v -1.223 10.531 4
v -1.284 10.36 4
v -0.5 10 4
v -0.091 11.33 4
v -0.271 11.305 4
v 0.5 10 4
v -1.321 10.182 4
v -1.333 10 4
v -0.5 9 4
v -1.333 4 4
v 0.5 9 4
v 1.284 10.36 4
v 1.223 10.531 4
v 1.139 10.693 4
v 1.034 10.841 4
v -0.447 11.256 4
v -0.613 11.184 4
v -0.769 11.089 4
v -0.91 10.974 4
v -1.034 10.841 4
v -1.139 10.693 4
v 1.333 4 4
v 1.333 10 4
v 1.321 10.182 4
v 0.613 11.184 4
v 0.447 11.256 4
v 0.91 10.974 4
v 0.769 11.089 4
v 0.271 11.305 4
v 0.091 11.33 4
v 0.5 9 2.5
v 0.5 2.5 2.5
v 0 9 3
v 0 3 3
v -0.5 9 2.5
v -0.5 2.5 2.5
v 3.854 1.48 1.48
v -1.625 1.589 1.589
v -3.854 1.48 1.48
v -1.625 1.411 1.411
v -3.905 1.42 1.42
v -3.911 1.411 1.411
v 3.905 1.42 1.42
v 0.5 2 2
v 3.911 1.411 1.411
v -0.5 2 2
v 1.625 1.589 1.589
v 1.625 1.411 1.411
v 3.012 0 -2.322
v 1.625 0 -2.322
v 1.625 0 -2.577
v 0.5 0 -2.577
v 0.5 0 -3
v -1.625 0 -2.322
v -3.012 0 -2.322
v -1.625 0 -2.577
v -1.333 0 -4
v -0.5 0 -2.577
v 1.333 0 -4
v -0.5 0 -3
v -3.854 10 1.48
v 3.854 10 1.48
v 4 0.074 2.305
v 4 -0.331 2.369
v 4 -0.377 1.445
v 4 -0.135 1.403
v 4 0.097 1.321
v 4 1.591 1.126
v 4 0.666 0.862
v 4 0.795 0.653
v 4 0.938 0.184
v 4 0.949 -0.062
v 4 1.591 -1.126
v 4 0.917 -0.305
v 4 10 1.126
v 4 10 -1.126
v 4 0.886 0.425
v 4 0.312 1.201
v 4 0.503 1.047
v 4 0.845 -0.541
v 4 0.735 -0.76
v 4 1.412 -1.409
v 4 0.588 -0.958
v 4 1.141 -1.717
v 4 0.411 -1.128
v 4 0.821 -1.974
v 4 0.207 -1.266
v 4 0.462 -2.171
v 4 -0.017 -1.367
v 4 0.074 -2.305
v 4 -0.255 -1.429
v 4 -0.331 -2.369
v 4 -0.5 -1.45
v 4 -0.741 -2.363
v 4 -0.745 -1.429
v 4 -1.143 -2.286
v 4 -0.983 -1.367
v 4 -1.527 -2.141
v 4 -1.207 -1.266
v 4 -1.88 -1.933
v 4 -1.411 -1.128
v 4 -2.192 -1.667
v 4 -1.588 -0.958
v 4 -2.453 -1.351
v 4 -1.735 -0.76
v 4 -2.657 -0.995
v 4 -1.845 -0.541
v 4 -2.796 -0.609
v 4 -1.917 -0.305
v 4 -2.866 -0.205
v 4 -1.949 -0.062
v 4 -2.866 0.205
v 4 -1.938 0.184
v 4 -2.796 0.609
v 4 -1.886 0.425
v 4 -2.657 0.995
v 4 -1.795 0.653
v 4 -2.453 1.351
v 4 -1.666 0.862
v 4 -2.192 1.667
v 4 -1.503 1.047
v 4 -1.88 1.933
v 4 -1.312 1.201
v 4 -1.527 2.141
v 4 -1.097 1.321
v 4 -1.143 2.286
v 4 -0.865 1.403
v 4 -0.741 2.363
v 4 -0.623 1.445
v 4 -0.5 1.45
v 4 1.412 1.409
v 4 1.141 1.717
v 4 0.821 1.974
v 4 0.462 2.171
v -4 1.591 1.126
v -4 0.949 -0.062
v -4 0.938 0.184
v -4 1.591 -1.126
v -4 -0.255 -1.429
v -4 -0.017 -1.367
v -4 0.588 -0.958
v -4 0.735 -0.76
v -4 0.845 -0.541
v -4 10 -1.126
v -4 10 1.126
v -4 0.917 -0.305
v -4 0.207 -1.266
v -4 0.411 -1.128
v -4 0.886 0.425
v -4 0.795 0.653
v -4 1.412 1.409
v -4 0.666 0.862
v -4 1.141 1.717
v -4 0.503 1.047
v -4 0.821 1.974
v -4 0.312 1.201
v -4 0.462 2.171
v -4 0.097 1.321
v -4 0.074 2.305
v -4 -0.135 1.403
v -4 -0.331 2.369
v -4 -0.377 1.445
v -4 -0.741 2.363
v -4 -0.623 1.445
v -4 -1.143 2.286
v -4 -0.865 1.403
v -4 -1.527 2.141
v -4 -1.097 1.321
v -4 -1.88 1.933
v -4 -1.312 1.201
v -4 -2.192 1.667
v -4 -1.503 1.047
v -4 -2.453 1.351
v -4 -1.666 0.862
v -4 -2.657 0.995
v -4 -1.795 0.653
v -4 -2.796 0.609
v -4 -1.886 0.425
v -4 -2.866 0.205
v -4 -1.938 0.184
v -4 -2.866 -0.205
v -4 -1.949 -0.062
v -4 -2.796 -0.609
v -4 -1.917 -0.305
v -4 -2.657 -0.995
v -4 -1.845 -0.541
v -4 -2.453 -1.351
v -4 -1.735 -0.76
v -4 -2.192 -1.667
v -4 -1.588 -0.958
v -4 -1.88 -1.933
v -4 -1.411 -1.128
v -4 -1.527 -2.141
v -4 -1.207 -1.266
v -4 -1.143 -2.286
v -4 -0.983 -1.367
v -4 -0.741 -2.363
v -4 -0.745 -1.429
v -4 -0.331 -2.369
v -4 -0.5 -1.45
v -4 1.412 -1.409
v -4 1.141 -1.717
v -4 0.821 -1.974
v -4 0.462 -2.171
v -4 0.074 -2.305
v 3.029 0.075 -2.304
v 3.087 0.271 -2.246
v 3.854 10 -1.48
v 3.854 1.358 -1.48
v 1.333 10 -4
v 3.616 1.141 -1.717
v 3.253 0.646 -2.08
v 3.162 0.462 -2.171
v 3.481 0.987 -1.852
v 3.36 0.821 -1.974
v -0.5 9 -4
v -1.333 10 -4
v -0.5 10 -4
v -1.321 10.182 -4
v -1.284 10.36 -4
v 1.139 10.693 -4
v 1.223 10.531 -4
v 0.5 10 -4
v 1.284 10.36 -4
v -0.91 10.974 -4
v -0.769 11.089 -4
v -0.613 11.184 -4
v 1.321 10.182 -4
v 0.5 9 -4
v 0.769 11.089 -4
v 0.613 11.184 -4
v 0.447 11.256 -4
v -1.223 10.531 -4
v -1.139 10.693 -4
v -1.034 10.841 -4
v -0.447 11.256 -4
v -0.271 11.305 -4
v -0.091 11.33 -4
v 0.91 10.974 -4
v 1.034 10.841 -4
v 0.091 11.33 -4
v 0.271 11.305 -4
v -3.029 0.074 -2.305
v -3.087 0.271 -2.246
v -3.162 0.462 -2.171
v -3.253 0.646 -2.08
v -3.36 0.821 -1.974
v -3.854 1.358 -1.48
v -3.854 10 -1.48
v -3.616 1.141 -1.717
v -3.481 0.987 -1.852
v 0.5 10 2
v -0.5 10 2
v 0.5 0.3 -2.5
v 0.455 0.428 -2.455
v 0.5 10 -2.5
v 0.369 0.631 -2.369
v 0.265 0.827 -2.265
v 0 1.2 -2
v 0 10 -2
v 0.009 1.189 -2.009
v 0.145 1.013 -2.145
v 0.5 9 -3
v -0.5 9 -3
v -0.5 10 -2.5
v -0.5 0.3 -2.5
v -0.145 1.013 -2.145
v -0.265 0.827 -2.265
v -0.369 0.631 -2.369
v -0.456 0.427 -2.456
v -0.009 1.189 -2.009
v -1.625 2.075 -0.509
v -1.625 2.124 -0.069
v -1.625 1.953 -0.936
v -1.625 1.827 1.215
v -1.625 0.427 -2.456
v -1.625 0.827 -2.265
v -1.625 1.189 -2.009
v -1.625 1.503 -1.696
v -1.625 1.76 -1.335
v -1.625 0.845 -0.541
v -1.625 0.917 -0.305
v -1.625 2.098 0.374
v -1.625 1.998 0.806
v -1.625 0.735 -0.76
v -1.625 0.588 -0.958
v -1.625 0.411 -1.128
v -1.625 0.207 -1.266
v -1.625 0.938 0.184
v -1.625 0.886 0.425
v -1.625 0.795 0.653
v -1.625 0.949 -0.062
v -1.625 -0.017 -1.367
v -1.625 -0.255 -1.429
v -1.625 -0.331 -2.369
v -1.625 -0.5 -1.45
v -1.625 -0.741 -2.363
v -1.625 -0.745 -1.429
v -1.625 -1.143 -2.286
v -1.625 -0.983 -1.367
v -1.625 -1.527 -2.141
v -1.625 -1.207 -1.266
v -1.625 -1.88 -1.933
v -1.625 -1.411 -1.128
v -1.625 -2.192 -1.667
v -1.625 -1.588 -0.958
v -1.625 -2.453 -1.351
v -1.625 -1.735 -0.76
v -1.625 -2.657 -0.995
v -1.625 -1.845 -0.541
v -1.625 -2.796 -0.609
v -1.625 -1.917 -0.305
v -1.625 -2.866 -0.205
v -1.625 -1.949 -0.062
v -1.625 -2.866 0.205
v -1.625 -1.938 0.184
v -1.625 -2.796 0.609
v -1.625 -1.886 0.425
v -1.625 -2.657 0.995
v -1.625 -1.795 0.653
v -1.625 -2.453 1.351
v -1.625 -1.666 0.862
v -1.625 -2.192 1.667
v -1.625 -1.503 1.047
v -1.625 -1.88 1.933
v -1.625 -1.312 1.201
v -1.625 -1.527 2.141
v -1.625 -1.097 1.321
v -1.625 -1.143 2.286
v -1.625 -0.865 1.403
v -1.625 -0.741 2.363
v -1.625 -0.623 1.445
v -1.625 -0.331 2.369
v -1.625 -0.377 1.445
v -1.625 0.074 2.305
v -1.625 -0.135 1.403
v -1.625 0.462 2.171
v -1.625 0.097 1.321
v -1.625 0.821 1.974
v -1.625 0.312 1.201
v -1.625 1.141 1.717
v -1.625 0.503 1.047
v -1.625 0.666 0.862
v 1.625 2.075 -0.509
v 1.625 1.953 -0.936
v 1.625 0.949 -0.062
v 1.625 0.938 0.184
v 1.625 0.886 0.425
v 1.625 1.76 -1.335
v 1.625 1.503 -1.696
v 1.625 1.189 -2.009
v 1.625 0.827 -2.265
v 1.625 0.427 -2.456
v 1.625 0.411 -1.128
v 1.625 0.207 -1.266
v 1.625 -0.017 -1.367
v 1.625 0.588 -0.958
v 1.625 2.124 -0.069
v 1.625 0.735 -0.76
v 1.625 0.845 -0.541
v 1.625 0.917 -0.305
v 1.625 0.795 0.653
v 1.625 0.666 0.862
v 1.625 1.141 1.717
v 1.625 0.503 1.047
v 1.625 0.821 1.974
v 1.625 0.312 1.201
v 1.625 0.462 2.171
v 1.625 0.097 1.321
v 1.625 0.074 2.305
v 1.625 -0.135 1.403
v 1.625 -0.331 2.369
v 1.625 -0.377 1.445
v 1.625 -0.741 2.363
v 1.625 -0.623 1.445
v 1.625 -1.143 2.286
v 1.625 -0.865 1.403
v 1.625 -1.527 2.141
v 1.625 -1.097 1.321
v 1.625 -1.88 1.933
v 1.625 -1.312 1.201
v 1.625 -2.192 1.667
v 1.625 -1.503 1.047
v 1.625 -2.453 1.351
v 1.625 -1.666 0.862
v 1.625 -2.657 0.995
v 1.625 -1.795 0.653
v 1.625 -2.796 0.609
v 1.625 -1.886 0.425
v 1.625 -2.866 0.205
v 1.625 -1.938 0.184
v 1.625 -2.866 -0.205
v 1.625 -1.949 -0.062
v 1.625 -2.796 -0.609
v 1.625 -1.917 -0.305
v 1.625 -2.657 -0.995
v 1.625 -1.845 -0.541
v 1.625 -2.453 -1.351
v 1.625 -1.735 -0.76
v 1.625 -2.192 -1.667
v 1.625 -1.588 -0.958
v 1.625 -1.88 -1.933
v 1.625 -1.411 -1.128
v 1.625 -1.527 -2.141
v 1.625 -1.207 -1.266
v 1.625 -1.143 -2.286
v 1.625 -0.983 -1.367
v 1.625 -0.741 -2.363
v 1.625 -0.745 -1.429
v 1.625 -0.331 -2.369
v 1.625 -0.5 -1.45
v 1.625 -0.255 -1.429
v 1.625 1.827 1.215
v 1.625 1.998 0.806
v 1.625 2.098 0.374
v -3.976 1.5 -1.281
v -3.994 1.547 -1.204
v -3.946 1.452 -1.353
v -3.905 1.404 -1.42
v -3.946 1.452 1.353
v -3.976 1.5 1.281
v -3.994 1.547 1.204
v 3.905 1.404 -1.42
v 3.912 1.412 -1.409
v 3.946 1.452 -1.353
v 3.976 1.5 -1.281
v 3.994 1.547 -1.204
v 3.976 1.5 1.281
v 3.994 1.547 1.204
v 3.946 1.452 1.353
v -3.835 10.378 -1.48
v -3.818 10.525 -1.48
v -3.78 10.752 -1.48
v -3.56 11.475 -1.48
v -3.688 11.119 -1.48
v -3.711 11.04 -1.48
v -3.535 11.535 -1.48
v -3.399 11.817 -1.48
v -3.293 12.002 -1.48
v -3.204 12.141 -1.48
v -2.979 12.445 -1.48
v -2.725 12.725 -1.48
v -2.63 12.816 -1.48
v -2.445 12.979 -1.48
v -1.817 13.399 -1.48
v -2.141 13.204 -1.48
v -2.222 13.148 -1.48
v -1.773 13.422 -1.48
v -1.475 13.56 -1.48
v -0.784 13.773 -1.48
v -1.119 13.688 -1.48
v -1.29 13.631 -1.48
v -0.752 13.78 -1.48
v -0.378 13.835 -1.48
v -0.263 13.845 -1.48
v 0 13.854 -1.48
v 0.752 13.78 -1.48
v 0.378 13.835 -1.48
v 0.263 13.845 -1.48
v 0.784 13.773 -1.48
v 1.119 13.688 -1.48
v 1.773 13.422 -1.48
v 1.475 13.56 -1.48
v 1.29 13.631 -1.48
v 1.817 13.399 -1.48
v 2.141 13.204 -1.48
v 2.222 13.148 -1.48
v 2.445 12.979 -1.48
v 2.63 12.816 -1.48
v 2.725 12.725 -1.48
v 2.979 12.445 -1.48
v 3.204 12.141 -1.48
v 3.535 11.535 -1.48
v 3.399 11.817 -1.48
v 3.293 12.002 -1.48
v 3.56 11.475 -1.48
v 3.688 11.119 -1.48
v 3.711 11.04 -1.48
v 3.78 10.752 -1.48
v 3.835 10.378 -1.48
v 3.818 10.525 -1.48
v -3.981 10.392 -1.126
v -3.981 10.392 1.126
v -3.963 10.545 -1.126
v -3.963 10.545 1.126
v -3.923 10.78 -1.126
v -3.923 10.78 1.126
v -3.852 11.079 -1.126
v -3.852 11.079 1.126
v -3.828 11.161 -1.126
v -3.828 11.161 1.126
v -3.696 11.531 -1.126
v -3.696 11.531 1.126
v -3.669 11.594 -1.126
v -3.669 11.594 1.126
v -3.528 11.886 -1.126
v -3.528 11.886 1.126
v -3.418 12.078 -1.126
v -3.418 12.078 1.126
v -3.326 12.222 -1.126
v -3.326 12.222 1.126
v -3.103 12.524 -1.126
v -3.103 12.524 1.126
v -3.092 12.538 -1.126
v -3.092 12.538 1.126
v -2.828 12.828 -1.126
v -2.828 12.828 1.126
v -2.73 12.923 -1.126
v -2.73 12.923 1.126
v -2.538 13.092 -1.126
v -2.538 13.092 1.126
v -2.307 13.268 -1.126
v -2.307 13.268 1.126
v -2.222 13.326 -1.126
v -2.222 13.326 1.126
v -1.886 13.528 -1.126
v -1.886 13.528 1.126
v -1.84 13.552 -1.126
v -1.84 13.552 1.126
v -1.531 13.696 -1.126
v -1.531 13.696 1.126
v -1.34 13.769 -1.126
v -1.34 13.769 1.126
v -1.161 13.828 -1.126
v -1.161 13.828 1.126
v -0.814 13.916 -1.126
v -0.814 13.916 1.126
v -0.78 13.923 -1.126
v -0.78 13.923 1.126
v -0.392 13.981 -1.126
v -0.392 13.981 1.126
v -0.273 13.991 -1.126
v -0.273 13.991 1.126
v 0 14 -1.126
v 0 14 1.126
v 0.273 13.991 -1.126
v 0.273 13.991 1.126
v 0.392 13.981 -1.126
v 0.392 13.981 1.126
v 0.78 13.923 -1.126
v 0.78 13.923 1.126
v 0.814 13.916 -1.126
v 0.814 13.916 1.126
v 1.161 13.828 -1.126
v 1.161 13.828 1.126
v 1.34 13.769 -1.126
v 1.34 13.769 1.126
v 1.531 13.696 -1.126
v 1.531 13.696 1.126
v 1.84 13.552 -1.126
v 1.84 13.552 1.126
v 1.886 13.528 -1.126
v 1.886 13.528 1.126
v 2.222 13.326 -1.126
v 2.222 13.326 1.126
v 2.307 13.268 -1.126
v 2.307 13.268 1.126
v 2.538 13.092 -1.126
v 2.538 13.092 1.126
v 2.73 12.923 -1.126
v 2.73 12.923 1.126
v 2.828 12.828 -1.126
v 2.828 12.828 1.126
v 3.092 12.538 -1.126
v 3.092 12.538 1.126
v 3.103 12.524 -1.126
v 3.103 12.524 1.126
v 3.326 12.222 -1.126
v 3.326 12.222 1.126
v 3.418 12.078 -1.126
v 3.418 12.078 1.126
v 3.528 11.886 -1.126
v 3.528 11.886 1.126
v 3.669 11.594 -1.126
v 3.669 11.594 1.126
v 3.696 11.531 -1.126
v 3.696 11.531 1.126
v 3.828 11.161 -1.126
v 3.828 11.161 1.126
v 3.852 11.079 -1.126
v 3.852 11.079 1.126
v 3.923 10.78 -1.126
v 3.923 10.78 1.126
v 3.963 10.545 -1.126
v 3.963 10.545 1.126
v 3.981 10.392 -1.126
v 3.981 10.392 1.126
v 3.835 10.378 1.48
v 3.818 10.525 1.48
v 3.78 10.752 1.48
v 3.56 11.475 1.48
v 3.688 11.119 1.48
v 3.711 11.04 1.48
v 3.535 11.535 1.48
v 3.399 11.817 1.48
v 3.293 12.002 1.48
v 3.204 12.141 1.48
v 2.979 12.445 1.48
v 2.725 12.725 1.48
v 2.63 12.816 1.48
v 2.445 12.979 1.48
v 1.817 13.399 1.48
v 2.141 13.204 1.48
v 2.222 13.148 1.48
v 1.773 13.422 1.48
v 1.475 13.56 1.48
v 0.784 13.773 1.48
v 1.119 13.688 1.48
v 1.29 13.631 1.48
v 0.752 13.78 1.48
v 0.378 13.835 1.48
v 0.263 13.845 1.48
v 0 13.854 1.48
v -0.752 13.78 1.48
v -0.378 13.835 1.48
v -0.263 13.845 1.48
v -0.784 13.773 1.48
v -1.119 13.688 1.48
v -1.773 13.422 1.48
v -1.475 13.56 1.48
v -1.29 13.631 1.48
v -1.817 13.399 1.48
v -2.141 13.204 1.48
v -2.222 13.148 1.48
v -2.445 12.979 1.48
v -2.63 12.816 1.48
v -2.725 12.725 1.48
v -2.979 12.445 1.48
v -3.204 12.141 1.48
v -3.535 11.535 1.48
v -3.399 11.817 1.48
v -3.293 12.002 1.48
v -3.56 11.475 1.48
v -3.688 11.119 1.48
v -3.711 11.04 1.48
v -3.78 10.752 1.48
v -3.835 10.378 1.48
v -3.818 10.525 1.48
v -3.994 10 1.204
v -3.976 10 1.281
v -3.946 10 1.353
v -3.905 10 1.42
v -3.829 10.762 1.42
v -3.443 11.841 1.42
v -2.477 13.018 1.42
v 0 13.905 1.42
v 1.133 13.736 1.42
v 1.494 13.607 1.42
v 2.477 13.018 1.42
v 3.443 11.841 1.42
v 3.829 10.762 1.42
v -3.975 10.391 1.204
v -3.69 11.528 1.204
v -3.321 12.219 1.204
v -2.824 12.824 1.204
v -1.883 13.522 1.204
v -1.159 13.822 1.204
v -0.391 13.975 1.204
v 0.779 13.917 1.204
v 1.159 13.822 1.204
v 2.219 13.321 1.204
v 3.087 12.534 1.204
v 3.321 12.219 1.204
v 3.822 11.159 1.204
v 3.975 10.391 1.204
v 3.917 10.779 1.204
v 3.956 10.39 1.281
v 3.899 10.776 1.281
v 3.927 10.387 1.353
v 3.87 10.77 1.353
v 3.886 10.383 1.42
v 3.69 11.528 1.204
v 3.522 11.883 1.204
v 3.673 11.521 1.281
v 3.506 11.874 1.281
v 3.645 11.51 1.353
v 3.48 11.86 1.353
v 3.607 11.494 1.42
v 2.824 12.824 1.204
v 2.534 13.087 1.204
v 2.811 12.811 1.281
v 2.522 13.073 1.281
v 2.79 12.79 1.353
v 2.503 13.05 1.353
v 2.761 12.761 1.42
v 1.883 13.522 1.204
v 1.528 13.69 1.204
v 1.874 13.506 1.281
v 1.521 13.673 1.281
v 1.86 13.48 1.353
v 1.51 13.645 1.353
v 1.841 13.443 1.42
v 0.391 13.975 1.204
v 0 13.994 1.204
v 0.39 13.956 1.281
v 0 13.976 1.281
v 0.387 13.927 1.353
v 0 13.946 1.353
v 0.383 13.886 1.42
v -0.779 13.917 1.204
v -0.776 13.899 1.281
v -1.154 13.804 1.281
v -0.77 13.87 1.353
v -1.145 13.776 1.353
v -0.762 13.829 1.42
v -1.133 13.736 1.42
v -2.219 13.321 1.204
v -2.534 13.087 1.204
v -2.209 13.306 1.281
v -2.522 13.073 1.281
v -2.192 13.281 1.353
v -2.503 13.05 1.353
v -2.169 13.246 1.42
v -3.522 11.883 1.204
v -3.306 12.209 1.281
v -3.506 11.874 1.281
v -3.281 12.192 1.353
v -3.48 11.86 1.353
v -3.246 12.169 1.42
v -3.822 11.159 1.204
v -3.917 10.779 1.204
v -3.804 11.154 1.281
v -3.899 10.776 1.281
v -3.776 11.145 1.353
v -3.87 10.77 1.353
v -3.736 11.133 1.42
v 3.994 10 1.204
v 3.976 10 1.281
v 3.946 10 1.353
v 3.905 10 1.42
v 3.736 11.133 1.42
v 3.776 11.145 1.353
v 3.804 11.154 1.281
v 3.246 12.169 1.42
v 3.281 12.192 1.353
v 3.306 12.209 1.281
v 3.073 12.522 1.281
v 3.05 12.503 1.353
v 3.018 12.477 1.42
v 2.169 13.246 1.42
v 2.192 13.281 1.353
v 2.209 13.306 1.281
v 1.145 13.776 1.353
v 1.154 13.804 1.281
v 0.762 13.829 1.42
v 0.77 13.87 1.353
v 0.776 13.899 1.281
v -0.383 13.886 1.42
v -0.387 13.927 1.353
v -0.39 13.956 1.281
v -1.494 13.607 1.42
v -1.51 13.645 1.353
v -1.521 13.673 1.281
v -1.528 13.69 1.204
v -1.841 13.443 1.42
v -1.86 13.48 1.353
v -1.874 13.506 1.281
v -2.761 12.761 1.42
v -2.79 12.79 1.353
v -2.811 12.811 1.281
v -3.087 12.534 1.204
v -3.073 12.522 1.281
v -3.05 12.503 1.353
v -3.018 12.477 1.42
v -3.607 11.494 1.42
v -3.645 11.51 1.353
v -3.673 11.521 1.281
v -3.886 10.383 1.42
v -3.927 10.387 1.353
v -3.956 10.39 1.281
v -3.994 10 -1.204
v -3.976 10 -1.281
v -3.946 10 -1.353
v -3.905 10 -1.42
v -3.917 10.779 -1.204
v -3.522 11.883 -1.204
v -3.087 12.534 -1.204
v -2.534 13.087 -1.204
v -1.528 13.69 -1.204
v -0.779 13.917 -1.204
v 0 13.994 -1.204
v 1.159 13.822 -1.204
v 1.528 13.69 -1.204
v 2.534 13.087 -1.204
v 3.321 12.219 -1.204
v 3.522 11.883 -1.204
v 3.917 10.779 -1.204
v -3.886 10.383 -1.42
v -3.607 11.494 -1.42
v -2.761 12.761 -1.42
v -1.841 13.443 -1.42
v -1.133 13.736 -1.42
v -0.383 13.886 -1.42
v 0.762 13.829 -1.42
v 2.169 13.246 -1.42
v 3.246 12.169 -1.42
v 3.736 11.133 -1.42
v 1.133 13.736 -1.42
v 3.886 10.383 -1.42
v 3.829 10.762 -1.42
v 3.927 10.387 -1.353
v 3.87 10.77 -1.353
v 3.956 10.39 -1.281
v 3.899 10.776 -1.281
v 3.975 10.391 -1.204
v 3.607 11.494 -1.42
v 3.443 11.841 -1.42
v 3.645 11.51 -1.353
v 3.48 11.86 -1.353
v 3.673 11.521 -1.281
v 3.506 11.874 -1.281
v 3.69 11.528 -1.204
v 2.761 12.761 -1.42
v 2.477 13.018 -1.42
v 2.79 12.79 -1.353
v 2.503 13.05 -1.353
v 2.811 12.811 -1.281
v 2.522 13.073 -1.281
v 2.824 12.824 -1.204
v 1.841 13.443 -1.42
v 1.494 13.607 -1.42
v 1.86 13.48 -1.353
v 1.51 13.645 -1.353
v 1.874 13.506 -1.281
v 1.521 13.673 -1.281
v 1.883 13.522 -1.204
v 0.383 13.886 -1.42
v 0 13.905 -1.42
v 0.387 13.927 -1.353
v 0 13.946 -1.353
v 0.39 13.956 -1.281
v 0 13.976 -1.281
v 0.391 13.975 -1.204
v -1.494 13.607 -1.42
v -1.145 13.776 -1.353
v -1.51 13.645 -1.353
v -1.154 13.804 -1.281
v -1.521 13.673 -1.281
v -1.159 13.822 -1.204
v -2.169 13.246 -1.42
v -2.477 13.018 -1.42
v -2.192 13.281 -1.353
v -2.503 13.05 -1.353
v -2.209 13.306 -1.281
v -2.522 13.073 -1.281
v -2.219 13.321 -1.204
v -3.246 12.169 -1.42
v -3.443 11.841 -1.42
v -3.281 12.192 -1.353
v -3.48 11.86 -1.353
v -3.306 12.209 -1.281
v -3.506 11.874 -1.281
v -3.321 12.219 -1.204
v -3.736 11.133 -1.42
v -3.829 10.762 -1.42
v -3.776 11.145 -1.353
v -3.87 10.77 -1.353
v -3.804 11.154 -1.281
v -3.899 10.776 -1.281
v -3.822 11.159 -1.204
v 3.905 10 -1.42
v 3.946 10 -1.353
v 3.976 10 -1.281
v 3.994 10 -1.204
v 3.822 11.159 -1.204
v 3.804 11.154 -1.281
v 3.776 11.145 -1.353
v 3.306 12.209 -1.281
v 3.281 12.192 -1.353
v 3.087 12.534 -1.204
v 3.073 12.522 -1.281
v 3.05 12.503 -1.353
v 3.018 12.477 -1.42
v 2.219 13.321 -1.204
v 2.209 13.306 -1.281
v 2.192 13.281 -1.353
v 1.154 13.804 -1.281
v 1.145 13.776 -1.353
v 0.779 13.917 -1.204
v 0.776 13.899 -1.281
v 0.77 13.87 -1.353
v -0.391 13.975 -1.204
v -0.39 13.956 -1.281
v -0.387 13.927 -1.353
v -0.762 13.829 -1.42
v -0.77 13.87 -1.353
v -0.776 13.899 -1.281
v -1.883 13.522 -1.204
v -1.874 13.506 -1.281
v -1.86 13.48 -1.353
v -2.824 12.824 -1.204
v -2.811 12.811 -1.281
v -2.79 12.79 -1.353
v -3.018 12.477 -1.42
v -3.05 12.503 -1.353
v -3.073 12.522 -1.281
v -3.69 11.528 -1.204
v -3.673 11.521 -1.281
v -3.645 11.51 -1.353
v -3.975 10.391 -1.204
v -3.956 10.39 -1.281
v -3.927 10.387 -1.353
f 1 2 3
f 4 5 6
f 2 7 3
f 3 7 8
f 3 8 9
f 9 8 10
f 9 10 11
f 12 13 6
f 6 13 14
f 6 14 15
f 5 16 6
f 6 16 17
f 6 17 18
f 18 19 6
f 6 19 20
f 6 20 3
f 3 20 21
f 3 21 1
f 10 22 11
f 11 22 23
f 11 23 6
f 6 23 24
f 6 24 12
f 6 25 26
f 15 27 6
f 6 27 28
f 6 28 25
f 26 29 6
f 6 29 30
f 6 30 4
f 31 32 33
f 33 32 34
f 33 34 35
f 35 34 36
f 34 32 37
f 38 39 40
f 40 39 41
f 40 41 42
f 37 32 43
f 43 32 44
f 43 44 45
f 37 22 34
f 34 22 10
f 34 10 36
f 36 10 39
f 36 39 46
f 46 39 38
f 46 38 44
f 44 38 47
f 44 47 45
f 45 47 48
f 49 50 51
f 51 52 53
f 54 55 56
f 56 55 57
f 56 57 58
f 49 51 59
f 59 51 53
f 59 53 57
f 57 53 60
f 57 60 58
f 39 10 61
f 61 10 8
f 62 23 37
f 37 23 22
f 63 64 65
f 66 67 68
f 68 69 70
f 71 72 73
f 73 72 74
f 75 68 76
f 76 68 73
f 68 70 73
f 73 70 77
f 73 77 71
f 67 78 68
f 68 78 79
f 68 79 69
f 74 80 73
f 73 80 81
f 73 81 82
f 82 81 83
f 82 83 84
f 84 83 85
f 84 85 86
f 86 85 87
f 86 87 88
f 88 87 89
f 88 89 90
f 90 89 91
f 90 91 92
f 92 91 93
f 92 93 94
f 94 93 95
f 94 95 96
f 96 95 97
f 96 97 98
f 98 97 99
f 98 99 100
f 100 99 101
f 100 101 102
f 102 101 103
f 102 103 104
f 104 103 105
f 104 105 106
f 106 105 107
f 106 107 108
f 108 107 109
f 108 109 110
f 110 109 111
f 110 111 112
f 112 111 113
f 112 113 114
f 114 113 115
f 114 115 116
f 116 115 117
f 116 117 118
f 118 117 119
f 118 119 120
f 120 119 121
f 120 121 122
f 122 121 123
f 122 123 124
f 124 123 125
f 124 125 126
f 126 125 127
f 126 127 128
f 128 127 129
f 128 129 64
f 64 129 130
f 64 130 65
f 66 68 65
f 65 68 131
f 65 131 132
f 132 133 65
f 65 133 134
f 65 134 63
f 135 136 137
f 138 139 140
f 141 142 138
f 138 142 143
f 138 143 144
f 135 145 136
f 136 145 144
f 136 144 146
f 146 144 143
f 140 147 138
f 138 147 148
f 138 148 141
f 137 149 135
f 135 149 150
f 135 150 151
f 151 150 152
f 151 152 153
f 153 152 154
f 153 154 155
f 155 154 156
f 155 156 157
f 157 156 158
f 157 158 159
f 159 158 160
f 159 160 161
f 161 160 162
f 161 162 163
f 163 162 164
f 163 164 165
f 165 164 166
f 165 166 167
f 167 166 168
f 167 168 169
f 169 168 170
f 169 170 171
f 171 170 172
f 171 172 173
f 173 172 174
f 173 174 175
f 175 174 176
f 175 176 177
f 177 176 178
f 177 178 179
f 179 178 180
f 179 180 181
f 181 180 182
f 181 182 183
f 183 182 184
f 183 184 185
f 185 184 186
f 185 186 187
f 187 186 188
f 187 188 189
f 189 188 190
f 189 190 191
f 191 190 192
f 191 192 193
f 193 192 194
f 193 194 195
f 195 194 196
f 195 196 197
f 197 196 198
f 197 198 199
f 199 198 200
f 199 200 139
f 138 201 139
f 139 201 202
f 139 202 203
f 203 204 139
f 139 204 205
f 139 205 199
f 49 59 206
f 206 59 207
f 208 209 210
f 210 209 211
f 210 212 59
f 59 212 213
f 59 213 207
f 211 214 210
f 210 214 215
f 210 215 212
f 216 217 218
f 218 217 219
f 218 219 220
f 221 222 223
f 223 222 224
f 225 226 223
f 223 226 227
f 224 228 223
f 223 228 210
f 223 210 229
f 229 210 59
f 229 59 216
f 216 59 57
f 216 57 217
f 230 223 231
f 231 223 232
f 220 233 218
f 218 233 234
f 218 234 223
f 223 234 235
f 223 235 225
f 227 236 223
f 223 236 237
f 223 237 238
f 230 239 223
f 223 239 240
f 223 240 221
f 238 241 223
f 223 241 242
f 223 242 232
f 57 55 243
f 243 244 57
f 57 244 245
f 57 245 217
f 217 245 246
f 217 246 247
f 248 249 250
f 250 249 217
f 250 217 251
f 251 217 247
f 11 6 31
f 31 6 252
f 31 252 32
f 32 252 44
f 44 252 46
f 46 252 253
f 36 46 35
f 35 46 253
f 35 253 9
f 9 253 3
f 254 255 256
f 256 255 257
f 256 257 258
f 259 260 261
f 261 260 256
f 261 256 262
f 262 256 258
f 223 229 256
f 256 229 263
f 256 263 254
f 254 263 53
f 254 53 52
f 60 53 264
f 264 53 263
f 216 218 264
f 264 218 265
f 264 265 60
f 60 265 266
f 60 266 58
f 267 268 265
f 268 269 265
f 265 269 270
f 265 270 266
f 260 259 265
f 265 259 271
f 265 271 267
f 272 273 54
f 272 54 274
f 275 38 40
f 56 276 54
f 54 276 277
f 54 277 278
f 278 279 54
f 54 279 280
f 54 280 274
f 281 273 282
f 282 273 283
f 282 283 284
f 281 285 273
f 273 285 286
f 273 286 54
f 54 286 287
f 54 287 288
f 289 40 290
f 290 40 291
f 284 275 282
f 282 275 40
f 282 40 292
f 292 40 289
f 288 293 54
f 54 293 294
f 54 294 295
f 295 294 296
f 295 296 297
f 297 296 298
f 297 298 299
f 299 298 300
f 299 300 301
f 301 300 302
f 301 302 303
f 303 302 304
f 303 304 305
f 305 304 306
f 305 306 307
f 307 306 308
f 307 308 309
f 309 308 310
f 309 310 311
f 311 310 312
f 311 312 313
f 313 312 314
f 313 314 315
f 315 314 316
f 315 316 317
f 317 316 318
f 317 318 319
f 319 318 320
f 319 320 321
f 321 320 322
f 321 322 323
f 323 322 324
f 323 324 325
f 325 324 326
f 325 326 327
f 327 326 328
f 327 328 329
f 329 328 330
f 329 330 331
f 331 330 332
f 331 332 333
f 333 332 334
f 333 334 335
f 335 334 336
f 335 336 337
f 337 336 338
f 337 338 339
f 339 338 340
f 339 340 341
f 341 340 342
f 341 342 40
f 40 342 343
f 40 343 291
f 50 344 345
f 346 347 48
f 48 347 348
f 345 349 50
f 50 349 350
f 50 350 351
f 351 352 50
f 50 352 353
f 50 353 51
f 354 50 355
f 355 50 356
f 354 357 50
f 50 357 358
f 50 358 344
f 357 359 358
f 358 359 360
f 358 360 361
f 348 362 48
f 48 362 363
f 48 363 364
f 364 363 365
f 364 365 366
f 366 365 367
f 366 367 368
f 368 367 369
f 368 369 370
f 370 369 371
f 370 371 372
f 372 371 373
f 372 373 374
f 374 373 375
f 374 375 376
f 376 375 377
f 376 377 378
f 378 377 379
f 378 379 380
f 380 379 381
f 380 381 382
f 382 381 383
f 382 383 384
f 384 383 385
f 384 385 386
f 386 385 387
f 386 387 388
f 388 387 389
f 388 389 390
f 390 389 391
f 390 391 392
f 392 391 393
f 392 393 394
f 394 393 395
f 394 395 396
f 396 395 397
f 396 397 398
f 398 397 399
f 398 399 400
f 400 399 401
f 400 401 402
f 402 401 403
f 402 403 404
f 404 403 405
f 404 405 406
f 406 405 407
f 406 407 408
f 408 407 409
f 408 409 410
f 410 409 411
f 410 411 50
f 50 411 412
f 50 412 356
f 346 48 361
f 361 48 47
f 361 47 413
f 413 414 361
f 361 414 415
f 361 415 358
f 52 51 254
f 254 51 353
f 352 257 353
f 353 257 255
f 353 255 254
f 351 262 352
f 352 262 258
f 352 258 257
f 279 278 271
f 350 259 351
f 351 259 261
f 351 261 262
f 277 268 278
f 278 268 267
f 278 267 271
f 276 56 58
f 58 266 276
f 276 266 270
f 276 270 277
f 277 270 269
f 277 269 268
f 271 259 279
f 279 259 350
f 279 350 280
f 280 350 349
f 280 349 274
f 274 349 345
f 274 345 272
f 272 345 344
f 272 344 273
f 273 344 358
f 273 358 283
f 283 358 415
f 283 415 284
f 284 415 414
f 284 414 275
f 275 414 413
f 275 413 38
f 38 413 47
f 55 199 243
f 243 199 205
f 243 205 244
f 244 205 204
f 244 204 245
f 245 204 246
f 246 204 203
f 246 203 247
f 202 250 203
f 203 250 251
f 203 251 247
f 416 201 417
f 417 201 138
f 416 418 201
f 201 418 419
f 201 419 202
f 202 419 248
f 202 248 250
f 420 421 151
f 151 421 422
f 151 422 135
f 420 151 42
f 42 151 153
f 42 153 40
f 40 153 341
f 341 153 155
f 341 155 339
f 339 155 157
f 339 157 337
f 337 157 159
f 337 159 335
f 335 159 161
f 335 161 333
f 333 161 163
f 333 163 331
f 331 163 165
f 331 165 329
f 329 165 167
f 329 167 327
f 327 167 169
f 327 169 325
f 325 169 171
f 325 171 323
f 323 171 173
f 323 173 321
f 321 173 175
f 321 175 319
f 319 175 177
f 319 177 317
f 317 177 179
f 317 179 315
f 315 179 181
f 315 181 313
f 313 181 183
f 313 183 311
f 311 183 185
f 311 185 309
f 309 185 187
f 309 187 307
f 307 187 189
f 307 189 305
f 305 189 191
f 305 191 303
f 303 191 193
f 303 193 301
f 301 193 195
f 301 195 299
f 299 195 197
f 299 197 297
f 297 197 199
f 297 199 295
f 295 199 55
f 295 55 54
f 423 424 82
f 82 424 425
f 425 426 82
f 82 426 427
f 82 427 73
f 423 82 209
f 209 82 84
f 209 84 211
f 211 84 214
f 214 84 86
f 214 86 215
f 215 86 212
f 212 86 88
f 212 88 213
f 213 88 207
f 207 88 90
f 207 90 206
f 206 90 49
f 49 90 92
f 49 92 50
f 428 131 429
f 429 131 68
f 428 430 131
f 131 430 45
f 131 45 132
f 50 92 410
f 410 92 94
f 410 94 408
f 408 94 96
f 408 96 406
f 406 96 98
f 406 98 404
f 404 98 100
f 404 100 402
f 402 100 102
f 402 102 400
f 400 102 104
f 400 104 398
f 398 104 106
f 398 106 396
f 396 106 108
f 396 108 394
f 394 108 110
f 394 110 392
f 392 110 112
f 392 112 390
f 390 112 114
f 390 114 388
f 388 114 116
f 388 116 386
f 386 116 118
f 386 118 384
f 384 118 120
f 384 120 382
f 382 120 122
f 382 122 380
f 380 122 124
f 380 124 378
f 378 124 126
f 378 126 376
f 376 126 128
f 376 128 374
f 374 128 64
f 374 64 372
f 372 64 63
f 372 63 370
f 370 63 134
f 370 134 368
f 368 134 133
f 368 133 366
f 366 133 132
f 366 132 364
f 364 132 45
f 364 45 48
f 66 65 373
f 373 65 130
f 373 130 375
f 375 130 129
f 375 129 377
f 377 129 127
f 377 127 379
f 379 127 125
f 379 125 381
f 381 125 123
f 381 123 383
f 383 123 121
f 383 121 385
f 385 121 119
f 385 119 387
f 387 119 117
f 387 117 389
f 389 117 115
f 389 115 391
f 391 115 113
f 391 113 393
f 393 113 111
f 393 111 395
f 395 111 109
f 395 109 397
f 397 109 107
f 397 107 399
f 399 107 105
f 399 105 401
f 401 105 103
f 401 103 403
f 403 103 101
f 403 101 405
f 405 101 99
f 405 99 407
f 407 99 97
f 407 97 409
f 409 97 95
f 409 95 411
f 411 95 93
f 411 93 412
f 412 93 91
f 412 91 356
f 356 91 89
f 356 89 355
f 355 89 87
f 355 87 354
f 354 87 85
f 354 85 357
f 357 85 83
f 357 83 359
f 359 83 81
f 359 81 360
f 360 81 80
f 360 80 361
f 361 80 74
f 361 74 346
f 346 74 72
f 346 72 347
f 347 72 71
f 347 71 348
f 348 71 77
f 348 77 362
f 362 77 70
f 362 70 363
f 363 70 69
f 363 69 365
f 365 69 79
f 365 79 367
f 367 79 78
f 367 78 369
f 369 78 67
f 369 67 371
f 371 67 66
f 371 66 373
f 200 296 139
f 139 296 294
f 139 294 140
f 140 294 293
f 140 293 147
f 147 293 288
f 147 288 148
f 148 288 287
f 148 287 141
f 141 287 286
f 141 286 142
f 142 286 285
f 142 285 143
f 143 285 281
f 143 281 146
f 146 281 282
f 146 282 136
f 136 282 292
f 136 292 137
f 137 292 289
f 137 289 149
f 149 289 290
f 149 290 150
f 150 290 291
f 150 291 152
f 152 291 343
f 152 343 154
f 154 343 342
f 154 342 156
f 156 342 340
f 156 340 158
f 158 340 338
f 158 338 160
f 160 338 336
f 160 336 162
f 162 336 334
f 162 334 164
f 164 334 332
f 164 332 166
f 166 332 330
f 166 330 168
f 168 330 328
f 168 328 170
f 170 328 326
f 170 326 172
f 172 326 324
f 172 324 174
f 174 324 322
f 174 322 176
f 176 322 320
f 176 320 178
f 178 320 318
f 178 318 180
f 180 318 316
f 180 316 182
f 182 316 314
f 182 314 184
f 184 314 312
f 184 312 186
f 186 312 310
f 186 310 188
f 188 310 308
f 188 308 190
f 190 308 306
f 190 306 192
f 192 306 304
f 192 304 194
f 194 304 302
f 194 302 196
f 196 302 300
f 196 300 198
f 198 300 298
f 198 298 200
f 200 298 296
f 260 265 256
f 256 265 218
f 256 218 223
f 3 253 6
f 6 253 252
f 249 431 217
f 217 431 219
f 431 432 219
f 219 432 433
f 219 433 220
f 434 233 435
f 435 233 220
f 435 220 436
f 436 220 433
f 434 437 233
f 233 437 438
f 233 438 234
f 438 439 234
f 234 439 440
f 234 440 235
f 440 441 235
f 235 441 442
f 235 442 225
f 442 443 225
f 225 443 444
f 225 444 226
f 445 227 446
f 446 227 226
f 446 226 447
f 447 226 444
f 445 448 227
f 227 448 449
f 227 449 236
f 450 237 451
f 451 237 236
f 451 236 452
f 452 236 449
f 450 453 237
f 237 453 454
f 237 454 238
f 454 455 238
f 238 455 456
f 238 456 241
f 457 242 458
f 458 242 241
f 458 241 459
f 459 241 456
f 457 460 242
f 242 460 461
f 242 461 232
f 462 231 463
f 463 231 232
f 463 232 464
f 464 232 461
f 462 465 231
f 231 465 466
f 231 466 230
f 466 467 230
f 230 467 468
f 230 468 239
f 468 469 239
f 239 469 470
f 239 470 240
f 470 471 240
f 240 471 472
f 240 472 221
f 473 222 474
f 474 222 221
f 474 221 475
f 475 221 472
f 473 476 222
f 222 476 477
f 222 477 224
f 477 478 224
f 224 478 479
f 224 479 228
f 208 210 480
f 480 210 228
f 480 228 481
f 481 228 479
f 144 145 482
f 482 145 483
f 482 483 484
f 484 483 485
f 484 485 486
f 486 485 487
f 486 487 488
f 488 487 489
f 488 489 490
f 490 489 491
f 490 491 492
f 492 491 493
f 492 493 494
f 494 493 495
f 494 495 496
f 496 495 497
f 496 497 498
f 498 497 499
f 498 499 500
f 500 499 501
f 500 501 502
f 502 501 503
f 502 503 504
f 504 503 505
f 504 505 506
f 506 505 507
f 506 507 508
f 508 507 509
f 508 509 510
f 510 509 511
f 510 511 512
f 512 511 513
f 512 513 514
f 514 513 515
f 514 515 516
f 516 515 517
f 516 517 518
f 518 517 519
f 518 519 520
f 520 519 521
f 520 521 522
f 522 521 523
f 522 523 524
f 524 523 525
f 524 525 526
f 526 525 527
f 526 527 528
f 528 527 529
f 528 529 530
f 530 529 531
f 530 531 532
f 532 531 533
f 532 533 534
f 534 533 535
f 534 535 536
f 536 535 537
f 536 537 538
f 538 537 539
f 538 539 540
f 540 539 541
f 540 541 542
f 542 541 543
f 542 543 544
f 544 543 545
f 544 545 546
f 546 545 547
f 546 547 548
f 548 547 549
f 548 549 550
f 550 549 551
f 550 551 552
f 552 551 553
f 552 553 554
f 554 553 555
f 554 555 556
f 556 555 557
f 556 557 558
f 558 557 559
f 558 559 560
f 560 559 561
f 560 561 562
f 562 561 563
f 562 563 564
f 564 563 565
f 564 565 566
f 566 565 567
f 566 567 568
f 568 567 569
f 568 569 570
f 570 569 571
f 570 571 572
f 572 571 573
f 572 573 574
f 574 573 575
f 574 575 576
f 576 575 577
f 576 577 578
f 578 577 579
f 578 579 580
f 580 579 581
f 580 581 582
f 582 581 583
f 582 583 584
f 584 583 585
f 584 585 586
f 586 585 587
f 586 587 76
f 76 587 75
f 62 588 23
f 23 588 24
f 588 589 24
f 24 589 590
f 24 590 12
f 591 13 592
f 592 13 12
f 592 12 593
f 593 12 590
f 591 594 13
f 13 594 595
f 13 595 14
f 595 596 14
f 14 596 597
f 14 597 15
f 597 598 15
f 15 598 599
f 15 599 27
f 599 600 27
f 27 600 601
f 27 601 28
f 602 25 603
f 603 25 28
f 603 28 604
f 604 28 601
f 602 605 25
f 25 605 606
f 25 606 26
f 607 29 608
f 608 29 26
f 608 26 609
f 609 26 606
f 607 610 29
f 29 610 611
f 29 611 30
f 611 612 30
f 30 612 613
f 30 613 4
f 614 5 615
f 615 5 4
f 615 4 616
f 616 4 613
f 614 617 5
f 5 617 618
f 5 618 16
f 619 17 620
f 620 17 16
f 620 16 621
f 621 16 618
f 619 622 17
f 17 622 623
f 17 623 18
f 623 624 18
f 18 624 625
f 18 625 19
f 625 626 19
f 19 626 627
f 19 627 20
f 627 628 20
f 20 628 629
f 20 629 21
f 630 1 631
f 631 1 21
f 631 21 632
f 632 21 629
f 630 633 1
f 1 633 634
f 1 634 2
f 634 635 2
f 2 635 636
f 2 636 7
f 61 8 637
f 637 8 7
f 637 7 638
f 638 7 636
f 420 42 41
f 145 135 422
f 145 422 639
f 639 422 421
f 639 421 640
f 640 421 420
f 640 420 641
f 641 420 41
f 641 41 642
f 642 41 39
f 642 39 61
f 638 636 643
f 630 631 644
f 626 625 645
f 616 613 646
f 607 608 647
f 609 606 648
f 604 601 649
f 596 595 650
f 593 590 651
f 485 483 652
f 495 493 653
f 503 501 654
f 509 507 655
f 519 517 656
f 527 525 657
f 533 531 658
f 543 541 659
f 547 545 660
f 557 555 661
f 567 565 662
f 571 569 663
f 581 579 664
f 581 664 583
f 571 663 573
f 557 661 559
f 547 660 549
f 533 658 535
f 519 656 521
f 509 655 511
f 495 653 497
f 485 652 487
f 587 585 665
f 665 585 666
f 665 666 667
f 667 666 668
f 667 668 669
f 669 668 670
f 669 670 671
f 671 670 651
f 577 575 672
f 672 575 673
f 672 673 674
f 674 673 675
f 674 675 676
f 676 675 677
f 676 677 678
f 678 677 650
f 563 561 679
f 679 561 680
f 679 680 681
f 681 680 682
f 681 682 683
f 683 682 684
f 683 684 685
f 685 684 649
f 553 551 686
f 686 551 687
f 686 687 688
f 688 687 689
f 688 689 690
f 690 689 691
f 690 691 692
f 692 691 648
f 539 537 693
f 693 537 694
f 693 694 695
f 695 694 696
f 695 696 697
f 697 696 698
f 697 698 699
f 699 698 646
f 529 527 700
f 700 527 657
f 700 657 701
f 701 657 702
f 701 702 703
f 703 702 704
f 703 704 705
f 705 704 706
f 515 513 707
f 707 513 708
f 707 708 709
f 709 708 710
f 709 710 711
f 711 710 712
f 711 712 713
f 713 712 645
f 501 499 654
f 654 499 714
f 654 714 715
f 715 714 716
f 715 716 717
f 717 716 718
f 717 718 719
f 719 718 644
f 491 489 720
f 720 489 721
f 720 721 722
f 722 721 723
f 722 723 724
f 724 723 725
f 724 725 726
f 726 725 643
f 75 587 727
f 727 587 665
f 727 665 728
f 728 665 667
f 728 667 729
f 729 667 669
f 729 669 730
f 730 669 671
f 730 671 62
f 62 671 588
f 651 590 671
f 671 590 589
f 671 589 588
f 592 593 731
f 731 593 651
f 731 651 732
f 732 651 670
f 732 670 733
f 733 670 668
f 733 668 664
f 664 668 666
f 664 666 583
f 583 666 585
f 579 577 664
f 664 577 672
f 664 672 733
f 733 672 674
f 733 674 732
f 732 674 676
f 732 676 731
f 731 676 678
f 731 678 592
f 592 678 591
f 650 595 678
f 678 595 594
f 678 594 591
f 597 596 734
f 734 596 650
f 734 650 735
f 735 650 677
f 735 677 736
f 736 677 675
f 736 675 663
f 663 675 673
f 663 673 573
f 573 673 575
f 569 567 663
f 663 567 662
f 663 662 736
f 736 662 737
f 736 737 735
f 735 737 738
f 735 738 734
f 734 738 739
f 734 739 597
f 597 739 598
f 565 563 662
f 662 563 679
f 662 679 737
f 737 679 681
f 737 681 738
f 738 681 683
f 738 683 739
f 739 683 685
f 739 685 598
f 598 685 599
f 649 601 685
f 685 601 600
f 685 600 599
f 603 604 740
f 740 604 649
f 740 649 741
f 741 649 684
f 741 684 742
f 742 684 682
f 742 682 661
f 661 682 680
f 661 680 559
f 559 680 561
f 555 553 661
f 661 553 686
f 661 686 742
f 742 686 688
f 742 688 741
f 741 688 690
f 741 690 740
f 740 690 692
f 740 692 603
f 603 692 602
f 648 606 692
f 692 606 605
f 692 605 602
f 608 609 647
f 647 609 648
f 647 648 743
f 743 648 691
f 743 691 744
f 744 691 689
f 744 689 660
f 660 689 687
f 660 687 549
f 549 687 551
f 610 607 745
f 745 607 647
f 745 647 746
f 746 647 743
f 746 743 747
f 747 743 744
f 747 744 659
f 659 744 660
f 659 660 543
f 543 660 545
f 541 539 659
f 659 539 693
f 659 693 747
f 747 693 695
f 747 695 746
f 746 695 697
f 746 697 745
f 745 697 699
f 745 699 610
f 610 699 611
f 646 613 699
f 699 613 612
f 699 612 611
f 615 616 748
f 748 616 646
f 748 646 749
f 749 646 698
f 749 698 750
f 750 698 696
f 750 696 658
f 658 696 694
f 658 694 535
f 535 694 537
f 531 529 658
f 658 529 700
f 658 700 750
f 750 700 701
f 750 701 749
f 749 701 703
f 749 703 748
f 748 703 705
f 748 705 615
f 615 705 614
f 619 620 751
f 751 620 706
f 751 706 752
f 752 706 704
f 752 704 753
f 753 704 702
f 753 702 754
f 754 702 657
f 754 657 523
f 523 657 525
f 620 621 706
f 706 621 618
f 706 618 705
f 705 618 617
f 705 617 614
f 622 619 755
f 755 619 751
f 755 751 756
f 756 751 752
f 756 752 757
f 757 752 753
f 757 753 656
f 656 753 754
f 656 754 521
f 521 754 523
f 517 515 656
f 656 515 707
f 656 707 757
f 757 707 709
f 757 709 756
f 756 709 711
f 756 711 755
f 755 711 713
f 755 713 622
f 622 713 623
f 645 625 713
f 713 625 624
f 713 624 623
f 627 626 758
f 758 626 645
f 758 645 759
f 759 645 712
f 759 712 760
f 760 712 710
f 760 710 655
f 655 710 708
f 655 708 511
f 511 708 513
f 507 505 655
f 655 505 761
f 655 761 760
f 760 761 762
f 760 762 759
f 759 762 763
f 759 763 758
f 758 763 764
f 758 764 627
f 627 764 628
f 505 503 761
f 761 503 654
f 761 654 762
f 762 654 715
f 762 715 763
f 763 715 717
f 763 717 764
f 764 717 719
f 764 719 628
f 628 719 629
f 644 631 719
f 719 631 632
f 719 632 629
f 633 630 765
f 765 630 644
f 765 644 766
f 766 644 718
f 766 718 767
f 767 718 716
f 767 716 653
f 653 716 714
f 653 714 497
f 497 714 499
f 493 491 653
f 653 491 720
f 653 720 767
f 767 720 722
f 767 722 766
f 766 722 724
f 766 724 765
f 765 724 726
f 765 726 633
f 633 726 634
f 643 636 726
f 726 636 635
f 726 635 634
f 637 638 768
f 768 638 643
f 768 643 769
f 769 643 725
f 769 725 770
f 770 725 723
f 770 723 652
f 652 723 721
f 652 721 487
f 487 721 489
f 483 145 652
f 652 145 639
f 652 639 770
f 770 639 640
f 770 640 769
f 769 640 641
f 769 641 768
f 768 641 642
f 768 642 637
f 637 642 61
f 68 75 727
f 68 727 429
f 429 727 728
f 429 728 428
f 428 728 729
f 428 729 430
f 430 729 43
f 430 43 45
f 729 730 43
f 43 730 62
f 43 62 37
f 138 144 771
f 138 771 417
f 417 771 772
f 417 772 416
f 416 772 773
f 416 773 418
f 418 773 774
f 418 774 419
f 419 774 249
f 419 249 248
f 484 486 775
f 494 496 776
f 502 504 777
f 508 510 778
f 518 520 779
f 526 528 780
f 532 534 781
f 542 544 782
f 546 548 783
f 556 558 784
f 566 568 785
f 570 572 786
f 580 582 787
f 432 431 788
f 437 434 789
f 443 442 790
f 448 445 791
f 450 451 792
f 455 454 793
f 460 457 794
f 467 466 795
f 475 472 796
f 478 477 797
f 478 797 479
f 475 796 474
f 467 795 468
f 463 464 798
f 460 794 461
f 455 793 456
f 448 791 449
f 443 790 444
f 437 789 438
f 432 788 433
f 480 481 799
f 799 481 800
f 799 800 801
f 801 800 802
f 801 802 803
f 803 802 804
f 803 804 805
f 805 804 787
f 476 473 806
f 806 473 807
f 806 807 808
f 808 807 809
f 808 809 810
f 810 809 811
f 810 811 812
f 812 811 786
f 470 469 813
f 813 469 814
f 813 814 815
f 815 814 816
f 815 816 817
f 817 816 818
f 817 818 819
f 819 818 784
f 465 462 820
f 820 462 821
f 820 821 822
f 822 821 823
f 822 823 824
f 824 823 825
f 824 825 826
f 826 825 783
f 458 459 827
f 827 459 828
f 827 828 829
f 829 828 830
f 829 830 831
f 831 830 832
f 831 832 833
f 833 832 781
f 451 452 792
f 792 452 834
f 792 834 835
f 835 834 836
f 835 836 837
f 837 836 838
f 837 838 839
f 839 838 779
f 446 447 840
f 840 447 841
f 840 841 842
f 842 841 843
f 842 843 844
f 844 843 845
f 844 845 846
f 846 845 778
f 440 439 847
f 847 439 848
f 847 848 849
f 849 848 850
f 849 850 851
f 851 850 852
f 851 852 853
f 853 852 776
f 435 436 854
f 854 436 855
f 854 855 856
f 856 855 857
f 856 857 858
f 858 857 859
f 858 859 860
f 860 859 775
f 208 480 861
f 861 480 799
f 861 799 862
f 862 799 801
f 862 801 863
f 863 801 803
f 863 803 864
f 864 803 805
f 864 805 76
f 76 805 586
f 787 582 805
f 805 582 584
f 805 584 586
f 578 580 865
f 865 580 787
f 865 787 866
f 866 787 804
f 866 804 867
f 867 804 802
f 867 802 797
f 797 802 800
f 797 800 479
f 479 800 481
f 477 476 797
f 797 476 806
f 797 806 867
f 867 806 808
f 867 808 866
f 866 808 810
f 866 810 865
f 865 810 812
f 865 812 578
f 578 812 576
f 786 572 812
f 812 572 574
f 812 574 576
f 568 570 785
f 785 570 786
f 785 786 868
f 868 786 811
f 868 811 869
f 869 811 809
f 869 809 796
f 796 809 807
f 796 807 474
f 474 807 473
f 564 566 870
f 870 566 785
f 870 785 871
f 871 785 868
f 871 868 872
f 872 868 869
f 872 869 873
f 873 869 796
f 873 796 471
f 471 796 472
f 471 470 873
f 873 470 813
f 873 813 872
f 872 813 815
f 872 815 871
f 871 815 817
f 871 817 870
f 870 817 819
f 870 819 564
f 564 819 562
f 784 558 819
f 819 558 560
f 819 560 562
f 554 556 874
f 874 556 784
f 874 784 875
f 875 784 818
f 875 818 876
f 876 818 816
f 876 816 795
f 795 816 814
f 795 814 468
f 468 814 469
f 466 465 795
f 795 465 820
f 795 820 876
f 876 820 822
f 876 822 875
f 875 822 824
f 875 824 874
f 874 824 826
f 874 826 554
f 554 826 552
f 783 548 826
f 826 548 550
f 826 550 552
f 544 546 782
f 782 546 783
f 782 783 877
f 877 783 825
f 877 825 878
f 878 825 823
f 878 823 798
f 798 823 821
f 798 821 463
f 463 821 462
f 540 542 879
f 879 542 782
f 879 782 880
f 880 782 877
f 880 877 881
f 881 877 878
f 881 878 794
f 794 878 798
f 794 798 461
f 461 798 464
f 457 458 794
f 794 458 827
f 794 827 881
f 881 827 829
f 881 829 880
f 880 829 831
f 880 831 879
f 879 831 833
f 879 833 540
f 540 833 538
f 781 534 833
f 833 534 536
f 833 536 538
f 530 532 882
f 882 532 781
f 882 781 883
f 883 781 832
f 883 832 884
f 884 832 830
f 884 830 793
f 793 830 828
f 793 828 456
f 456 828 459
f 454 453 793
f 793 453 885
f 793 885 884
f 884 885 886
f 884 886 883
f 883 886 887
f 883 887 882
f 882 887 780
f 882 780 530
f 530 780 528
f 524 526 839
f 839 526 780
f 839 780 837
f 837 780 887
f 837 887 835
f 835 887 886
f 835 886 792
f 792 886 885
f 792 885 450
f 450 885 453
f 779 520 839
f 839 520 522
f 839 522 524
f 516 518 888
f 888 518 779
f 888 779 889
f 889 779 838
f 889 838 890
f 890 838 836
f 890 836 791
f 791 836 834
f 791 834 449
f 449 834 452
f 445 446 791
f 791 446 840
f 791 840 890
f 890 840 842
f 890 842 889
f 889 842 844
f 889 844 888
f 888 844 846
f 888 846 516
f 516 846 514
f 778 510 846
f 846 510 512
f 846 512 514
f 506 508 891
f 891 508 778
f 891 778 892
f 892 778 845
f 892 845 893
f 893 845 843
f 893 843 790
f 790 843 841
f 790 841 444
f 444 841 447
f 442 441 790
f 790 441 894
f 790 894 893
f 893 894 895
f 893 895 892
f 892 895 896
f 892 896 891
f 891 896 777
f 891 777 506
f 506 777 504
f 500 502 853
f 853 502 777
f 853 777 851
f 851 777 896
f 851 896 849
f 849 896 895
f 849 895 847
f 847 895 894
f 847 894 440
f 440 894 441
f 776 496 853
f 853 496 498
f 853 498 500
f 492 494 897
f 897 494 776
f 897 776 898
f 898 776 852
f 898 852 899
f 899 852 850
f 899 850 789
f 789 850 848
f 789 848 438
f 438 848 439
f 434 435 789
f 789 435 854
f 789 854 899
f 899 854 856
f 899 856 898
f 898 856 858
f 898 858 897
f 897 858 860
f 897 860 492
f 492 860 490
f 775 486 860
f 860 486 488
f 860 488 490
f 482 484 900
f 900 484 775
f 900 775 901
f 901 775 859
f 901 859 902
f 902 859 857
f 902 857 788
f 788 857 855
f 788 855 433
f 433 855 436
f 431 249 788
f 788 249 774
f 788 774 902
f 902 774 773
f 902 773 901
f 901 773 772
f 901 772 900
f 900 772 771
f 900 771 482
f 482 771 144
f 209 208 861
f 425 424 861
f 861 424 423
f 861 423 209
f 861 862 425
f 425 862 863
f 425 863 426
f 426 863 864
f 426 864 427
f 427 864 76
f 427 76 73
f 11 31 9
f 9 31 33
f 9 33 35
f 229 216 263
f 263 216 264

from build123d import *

# Parameters (mm, degrees)
BOSS_EXTRUDE1_DEPTH     = 10
CUT_EXTRUDE1_DEPTH      = 12.489125293
CUT_EXTRUDE1_DEPTH_BACK = 12.489125293
CUT_EXTRUDE2_DEPTH      = 10
SKETCH6_R               = 2.625
CUT_EXTRUDE4_DEPTH      = 1.625
BOSS_EXTRUDE3_REACH     = 14.151
SKETCH7_R               = 2.375
BOSS_EXTRUDE4_START     = -2.375
SKETCH8_R               = 2.375
BOSS_EXTRUDE4_DEPTH     = 2.375
CUT_EXTRUDE6_DEPTH      = 14.416407865
CUT_EXTRUDE6_DEPTH_BACK = 14.416407865
SKETCH11_R              = 1.45
REVOLVE1_ANGLE          = 180
FILLET1_R               = 0.5
FILLET2_R               = 0.5
SKETCH13_W              = 1
SKETCH13_H              = 1
CUT_EXTRUDE7_DEPTH      = 16.7480159
SKETCH14_W              = 1
SKETCH14_H              = 1
CUT_EXTRUDE8_DEPTH      = 17.155494533


with BuildPart() as part:
    # Sketch1 → Boss-Extrude1 (new body)
    with BuildSketch(Plane(origin=(0, 0, 0), x_dir=(1, 0, 0), z_dir=(0, 1, 0))):
        Polygon((-1.333333333, -4), (1.333333333, -4), (4, -1.333333333), (4, 1.333333333), (1.333333333, 4), (-1.333333333, 4), (-4, 1.333333333), (-4, -1.333333333), align=None)
    extrude(amount=BOSS_EXTRUDE1_DEPTH)

    # Sketch2 → Cut-Extrude1 (cut, two sides: drawn at the far end of the back side and taken through both)
    with BuildSketch(Plane(origin=(0, 0, 0), x_dir=(0, 0, -1), z_dir=(1, 0, 0)).offset(-CUT_EXTRUDE1_DEPTH_BACK)):
        Polygon((0, 0), (-4, 0), (-4, 4), align=None)
    extrude(amount=CUT_EXTRUDE1_DEPTH + CUT_EXTRUDE1_DEPTH_BACK, mode=Mode.SUBTRACT)

    # Sketch3 → Cut-Extrude2 (cut)
    with BuildSketch(Plane(origin=(0, 0, 0), x_dir=(1, 0, 0), z_dir=(0, 1, 0))):
        Polygon((0, -3), (-0.5, -2.5), (-0.5, -2), (0.5, -2), (0.5, -2.5), align=None)
        Polygon((0.5, 3), (0.5, 2.5), (0, 2), (-0.5, 2.5), (-0.5, 3), align=None)
    extrude(amount=CUT_EXTRUDE2_DEPTH, mode=Mode.SUBTRACT)

    # Sketch6 → Cut-Extrude4 (cut, symmetric)
    with BuildSketch(Plane(origin=(0, 0, 0), x_dir=(0, 0, -1), z_dir=(1, 0, 0))):
        with Locations((0, -0.5)):
            Circle(SKETCH6_R)
    extrude(amount=CUT_EXTRUDE4_DEPTH, both=True, mode=Mode.SUBTRACT)

    # Boss-Extrude3: up to this face of the body (flat: up to its plane)
    boss_extrude3_end = Plane(part.part.faces().sort_by_distance((-4, 5.157088123, -0.030651341))[0])
    # Sketch7 → Boss-Extrude3 (add, up to the picked face)
    with BuildSketch(Plane(origin=(-1.625, 0, 0), x_dir=(0, 0, -1), z_dir=(1, 0, 0)), mode=Mode.PRIVATE) as boss_extrude3_sk1:
        with Locations((0, -0.5)):
            Circle(SKETCH7_R)
    boss_extrude3_tool1 = split(extrude(boss_extrude3_sk1.sketch, amount=-BOSS_EXTRUDE3_REACH, mode=Mode.PRIVATE), bisect_by=boss_extrude3_end, keep=Keep.BOTH, mode=Mode.PRIVATE)
    add(boss_extrude3_tool1.solids().sort_by(Axis((-1.625, -0.5, 0), (-1, 0, 0)))[0])

    # Sketch8 → Boss-Extrude4 (add)
    with BuildSketch(Plane.ZY.offset(-1.625).offset(BOSS_EXTRUDE4_START)):
        with Locations((0, -0.5)):
            Circle(SKETCH8_R)
    extrude(amount=BOSS_EXTRUDE4_DEPTH)

    # Sketch11 → Cut-Extrude6 (cut, two sides: drawn at the far end of the back side and taken through both)
    with BuildSketch(Plane(origin=(4, 0, 0), x_dir=(0, 0, -1), z_dir=(1, 0, 0)).offset(-CUT_EXTRUDE6_DEPTH_BACK)):
        with Locations((0, -0.5)):
            Circle(SKETCH11_R)
    extrude(amount=CUT_EXTRUDE6_DEPTH + CUT_EXTRUDE6_DEPTH_BACK, mode=Mode.SUBTRACT)

    # Sketch12 → Revolve1 (revolve)
    with BuildSketch(Plane(origin=(0, 10, 0), x_dir=(1, 0, 0), z_dir=(0, 1, 0))):
        Polygon((0, 4), (-1.333333333, 4), (-4, 1.333333333), (-4, -1.333333333), (-1.333333333, -4), (0, -4), align=None)
    revolve(axis=Axis((0, 10, 4), (0, 0, -1)), revolution_arc=REVOLVE1_ANGLE)

    # Fillet1
    # the kernel refuses this fillet: 0.5 mm, written as the material it takes off along each edge
    with BuildSketch(Plane(origin=(4, 0.947645783, 1.333333333), x_dir=(-0.7071067811865454, 0, 0.7071067811865497), z_dir=(0, 1, 0))) as fillet1_piece_1_section:
        with BuildLine():
            CenterArc((FILLET1_R * 0.414213562373, -FILLET1_R), FILLET1_R, 90, 45)
            Line((-FILLET1_R * 0.292893218813, -FILLET1_R * 0.292893218813), (0, 0))
            Line((0, 0), (FILLET1_R * 0.414213562373, 0))
        make_face()
    fillet1_piece_1 = extrude(amount=9.052354217, mode=Mode.PRIVATE)
    fillet1_piece_1 = fillet1_piece_1 - Plane(origin=(3.968890647, -0.5, 0), x_dir=(0, 0, 1), z_dir=(1, 0, 0)) * Cylinder(2.375, 19, mode=Mode.PRIVATE)
    add(fillet1_piece_1, mode=Mode.SUBTRACT)
    with BuildSketch(Plane(origin=(-4, 0.947645783, 1.333333333), x_dir=(0, 0, -1), z_dir=(0, 1, 0))) as fillet1_piece_2_section:
        with BuildLine():
            CenterArc((FILLET1_R * 0.414213562373, -FILLET1_R), FILLET1_R, 90, 45)
            Line((-FILLET1_R * 0.292893218813, -FILLET1_R * 0.292893218813), (0, 0))
            Line((0, 0), (FILLET1_R * 0.414213562373, 0))
        make_face()
    fillet1_piece_2 = extrude(amount=9.052354217, mode=Mode.PRIVATE)
    fillet1_piece_2 = fillet1_piece_2 - Plane(origin=(-3.968890645, -0.5, 0), x_dir=(0, 0, -1), z_dir=(1, 0, 0)) * Cylinder(2.375, 19, mode=Mode.PRIVATE)
    add(fillet1_piece_2, mode=Mode.SUBTRACT)
    with BuildSketch(Plane(origin=(0, 10, 1.333333333), x_dir=(-1, 0, 0), z_dir=(0, -1, 0))) as fillet1_piece_3:
        with BuildLine():
            CenterArc((4 - FILLET1_R, FILLET1_R * 0.414213562373), FILLET1_R, 315, 45)
            Line((4 - FILLET1_R * 0.292893218813, -FILLET1_R * 0.292893218813), (4, 0))
            Line((4, 0), (4, FILLET1_R * 0.414213562373))
        make_face()
    revolve(axis=Axis((0, 10, 1.333333333), (0, 0, -1)), revolution_arc=180, mode=Mode.SUBTRACT)

    # Fillet2
    fillet2_edges = [part.edges().sort_by_distance(p)[0] for p in [
        (4, 5.732706368, -1.333333333),
        (-4, 5.732706368, -1.333333333),
        (0, 14, -1.333333333),
    ]]
    fillet(fillet2_edges, radius=FILLET2_R)

    # Sketch13 → Cut-Extrude7 (cut, through all)
    with BuildSketch(Plane.XY.offset(2)):
        with Locations((0, 9.5)):
            Rectangle(SKETCH13_W, SKETCH13_H)
    extrude(amount=CUT_EXTRUDE7_DEPTH, mode=Mode.SUBTRACT)

    # Sketch14 → Cut-Extrude8 (cut, through all)
    with BuildSketch(Plane.XY.offset(-3)):
        with Locations((0, 9.5)):
            Rectangle(SKETCH14_W, SKETCH14_H)
    extrude(amount=-CUT_EXTRUDE8_DEPTH, mode=Mode.SUBTRACT)


solid = part.part
